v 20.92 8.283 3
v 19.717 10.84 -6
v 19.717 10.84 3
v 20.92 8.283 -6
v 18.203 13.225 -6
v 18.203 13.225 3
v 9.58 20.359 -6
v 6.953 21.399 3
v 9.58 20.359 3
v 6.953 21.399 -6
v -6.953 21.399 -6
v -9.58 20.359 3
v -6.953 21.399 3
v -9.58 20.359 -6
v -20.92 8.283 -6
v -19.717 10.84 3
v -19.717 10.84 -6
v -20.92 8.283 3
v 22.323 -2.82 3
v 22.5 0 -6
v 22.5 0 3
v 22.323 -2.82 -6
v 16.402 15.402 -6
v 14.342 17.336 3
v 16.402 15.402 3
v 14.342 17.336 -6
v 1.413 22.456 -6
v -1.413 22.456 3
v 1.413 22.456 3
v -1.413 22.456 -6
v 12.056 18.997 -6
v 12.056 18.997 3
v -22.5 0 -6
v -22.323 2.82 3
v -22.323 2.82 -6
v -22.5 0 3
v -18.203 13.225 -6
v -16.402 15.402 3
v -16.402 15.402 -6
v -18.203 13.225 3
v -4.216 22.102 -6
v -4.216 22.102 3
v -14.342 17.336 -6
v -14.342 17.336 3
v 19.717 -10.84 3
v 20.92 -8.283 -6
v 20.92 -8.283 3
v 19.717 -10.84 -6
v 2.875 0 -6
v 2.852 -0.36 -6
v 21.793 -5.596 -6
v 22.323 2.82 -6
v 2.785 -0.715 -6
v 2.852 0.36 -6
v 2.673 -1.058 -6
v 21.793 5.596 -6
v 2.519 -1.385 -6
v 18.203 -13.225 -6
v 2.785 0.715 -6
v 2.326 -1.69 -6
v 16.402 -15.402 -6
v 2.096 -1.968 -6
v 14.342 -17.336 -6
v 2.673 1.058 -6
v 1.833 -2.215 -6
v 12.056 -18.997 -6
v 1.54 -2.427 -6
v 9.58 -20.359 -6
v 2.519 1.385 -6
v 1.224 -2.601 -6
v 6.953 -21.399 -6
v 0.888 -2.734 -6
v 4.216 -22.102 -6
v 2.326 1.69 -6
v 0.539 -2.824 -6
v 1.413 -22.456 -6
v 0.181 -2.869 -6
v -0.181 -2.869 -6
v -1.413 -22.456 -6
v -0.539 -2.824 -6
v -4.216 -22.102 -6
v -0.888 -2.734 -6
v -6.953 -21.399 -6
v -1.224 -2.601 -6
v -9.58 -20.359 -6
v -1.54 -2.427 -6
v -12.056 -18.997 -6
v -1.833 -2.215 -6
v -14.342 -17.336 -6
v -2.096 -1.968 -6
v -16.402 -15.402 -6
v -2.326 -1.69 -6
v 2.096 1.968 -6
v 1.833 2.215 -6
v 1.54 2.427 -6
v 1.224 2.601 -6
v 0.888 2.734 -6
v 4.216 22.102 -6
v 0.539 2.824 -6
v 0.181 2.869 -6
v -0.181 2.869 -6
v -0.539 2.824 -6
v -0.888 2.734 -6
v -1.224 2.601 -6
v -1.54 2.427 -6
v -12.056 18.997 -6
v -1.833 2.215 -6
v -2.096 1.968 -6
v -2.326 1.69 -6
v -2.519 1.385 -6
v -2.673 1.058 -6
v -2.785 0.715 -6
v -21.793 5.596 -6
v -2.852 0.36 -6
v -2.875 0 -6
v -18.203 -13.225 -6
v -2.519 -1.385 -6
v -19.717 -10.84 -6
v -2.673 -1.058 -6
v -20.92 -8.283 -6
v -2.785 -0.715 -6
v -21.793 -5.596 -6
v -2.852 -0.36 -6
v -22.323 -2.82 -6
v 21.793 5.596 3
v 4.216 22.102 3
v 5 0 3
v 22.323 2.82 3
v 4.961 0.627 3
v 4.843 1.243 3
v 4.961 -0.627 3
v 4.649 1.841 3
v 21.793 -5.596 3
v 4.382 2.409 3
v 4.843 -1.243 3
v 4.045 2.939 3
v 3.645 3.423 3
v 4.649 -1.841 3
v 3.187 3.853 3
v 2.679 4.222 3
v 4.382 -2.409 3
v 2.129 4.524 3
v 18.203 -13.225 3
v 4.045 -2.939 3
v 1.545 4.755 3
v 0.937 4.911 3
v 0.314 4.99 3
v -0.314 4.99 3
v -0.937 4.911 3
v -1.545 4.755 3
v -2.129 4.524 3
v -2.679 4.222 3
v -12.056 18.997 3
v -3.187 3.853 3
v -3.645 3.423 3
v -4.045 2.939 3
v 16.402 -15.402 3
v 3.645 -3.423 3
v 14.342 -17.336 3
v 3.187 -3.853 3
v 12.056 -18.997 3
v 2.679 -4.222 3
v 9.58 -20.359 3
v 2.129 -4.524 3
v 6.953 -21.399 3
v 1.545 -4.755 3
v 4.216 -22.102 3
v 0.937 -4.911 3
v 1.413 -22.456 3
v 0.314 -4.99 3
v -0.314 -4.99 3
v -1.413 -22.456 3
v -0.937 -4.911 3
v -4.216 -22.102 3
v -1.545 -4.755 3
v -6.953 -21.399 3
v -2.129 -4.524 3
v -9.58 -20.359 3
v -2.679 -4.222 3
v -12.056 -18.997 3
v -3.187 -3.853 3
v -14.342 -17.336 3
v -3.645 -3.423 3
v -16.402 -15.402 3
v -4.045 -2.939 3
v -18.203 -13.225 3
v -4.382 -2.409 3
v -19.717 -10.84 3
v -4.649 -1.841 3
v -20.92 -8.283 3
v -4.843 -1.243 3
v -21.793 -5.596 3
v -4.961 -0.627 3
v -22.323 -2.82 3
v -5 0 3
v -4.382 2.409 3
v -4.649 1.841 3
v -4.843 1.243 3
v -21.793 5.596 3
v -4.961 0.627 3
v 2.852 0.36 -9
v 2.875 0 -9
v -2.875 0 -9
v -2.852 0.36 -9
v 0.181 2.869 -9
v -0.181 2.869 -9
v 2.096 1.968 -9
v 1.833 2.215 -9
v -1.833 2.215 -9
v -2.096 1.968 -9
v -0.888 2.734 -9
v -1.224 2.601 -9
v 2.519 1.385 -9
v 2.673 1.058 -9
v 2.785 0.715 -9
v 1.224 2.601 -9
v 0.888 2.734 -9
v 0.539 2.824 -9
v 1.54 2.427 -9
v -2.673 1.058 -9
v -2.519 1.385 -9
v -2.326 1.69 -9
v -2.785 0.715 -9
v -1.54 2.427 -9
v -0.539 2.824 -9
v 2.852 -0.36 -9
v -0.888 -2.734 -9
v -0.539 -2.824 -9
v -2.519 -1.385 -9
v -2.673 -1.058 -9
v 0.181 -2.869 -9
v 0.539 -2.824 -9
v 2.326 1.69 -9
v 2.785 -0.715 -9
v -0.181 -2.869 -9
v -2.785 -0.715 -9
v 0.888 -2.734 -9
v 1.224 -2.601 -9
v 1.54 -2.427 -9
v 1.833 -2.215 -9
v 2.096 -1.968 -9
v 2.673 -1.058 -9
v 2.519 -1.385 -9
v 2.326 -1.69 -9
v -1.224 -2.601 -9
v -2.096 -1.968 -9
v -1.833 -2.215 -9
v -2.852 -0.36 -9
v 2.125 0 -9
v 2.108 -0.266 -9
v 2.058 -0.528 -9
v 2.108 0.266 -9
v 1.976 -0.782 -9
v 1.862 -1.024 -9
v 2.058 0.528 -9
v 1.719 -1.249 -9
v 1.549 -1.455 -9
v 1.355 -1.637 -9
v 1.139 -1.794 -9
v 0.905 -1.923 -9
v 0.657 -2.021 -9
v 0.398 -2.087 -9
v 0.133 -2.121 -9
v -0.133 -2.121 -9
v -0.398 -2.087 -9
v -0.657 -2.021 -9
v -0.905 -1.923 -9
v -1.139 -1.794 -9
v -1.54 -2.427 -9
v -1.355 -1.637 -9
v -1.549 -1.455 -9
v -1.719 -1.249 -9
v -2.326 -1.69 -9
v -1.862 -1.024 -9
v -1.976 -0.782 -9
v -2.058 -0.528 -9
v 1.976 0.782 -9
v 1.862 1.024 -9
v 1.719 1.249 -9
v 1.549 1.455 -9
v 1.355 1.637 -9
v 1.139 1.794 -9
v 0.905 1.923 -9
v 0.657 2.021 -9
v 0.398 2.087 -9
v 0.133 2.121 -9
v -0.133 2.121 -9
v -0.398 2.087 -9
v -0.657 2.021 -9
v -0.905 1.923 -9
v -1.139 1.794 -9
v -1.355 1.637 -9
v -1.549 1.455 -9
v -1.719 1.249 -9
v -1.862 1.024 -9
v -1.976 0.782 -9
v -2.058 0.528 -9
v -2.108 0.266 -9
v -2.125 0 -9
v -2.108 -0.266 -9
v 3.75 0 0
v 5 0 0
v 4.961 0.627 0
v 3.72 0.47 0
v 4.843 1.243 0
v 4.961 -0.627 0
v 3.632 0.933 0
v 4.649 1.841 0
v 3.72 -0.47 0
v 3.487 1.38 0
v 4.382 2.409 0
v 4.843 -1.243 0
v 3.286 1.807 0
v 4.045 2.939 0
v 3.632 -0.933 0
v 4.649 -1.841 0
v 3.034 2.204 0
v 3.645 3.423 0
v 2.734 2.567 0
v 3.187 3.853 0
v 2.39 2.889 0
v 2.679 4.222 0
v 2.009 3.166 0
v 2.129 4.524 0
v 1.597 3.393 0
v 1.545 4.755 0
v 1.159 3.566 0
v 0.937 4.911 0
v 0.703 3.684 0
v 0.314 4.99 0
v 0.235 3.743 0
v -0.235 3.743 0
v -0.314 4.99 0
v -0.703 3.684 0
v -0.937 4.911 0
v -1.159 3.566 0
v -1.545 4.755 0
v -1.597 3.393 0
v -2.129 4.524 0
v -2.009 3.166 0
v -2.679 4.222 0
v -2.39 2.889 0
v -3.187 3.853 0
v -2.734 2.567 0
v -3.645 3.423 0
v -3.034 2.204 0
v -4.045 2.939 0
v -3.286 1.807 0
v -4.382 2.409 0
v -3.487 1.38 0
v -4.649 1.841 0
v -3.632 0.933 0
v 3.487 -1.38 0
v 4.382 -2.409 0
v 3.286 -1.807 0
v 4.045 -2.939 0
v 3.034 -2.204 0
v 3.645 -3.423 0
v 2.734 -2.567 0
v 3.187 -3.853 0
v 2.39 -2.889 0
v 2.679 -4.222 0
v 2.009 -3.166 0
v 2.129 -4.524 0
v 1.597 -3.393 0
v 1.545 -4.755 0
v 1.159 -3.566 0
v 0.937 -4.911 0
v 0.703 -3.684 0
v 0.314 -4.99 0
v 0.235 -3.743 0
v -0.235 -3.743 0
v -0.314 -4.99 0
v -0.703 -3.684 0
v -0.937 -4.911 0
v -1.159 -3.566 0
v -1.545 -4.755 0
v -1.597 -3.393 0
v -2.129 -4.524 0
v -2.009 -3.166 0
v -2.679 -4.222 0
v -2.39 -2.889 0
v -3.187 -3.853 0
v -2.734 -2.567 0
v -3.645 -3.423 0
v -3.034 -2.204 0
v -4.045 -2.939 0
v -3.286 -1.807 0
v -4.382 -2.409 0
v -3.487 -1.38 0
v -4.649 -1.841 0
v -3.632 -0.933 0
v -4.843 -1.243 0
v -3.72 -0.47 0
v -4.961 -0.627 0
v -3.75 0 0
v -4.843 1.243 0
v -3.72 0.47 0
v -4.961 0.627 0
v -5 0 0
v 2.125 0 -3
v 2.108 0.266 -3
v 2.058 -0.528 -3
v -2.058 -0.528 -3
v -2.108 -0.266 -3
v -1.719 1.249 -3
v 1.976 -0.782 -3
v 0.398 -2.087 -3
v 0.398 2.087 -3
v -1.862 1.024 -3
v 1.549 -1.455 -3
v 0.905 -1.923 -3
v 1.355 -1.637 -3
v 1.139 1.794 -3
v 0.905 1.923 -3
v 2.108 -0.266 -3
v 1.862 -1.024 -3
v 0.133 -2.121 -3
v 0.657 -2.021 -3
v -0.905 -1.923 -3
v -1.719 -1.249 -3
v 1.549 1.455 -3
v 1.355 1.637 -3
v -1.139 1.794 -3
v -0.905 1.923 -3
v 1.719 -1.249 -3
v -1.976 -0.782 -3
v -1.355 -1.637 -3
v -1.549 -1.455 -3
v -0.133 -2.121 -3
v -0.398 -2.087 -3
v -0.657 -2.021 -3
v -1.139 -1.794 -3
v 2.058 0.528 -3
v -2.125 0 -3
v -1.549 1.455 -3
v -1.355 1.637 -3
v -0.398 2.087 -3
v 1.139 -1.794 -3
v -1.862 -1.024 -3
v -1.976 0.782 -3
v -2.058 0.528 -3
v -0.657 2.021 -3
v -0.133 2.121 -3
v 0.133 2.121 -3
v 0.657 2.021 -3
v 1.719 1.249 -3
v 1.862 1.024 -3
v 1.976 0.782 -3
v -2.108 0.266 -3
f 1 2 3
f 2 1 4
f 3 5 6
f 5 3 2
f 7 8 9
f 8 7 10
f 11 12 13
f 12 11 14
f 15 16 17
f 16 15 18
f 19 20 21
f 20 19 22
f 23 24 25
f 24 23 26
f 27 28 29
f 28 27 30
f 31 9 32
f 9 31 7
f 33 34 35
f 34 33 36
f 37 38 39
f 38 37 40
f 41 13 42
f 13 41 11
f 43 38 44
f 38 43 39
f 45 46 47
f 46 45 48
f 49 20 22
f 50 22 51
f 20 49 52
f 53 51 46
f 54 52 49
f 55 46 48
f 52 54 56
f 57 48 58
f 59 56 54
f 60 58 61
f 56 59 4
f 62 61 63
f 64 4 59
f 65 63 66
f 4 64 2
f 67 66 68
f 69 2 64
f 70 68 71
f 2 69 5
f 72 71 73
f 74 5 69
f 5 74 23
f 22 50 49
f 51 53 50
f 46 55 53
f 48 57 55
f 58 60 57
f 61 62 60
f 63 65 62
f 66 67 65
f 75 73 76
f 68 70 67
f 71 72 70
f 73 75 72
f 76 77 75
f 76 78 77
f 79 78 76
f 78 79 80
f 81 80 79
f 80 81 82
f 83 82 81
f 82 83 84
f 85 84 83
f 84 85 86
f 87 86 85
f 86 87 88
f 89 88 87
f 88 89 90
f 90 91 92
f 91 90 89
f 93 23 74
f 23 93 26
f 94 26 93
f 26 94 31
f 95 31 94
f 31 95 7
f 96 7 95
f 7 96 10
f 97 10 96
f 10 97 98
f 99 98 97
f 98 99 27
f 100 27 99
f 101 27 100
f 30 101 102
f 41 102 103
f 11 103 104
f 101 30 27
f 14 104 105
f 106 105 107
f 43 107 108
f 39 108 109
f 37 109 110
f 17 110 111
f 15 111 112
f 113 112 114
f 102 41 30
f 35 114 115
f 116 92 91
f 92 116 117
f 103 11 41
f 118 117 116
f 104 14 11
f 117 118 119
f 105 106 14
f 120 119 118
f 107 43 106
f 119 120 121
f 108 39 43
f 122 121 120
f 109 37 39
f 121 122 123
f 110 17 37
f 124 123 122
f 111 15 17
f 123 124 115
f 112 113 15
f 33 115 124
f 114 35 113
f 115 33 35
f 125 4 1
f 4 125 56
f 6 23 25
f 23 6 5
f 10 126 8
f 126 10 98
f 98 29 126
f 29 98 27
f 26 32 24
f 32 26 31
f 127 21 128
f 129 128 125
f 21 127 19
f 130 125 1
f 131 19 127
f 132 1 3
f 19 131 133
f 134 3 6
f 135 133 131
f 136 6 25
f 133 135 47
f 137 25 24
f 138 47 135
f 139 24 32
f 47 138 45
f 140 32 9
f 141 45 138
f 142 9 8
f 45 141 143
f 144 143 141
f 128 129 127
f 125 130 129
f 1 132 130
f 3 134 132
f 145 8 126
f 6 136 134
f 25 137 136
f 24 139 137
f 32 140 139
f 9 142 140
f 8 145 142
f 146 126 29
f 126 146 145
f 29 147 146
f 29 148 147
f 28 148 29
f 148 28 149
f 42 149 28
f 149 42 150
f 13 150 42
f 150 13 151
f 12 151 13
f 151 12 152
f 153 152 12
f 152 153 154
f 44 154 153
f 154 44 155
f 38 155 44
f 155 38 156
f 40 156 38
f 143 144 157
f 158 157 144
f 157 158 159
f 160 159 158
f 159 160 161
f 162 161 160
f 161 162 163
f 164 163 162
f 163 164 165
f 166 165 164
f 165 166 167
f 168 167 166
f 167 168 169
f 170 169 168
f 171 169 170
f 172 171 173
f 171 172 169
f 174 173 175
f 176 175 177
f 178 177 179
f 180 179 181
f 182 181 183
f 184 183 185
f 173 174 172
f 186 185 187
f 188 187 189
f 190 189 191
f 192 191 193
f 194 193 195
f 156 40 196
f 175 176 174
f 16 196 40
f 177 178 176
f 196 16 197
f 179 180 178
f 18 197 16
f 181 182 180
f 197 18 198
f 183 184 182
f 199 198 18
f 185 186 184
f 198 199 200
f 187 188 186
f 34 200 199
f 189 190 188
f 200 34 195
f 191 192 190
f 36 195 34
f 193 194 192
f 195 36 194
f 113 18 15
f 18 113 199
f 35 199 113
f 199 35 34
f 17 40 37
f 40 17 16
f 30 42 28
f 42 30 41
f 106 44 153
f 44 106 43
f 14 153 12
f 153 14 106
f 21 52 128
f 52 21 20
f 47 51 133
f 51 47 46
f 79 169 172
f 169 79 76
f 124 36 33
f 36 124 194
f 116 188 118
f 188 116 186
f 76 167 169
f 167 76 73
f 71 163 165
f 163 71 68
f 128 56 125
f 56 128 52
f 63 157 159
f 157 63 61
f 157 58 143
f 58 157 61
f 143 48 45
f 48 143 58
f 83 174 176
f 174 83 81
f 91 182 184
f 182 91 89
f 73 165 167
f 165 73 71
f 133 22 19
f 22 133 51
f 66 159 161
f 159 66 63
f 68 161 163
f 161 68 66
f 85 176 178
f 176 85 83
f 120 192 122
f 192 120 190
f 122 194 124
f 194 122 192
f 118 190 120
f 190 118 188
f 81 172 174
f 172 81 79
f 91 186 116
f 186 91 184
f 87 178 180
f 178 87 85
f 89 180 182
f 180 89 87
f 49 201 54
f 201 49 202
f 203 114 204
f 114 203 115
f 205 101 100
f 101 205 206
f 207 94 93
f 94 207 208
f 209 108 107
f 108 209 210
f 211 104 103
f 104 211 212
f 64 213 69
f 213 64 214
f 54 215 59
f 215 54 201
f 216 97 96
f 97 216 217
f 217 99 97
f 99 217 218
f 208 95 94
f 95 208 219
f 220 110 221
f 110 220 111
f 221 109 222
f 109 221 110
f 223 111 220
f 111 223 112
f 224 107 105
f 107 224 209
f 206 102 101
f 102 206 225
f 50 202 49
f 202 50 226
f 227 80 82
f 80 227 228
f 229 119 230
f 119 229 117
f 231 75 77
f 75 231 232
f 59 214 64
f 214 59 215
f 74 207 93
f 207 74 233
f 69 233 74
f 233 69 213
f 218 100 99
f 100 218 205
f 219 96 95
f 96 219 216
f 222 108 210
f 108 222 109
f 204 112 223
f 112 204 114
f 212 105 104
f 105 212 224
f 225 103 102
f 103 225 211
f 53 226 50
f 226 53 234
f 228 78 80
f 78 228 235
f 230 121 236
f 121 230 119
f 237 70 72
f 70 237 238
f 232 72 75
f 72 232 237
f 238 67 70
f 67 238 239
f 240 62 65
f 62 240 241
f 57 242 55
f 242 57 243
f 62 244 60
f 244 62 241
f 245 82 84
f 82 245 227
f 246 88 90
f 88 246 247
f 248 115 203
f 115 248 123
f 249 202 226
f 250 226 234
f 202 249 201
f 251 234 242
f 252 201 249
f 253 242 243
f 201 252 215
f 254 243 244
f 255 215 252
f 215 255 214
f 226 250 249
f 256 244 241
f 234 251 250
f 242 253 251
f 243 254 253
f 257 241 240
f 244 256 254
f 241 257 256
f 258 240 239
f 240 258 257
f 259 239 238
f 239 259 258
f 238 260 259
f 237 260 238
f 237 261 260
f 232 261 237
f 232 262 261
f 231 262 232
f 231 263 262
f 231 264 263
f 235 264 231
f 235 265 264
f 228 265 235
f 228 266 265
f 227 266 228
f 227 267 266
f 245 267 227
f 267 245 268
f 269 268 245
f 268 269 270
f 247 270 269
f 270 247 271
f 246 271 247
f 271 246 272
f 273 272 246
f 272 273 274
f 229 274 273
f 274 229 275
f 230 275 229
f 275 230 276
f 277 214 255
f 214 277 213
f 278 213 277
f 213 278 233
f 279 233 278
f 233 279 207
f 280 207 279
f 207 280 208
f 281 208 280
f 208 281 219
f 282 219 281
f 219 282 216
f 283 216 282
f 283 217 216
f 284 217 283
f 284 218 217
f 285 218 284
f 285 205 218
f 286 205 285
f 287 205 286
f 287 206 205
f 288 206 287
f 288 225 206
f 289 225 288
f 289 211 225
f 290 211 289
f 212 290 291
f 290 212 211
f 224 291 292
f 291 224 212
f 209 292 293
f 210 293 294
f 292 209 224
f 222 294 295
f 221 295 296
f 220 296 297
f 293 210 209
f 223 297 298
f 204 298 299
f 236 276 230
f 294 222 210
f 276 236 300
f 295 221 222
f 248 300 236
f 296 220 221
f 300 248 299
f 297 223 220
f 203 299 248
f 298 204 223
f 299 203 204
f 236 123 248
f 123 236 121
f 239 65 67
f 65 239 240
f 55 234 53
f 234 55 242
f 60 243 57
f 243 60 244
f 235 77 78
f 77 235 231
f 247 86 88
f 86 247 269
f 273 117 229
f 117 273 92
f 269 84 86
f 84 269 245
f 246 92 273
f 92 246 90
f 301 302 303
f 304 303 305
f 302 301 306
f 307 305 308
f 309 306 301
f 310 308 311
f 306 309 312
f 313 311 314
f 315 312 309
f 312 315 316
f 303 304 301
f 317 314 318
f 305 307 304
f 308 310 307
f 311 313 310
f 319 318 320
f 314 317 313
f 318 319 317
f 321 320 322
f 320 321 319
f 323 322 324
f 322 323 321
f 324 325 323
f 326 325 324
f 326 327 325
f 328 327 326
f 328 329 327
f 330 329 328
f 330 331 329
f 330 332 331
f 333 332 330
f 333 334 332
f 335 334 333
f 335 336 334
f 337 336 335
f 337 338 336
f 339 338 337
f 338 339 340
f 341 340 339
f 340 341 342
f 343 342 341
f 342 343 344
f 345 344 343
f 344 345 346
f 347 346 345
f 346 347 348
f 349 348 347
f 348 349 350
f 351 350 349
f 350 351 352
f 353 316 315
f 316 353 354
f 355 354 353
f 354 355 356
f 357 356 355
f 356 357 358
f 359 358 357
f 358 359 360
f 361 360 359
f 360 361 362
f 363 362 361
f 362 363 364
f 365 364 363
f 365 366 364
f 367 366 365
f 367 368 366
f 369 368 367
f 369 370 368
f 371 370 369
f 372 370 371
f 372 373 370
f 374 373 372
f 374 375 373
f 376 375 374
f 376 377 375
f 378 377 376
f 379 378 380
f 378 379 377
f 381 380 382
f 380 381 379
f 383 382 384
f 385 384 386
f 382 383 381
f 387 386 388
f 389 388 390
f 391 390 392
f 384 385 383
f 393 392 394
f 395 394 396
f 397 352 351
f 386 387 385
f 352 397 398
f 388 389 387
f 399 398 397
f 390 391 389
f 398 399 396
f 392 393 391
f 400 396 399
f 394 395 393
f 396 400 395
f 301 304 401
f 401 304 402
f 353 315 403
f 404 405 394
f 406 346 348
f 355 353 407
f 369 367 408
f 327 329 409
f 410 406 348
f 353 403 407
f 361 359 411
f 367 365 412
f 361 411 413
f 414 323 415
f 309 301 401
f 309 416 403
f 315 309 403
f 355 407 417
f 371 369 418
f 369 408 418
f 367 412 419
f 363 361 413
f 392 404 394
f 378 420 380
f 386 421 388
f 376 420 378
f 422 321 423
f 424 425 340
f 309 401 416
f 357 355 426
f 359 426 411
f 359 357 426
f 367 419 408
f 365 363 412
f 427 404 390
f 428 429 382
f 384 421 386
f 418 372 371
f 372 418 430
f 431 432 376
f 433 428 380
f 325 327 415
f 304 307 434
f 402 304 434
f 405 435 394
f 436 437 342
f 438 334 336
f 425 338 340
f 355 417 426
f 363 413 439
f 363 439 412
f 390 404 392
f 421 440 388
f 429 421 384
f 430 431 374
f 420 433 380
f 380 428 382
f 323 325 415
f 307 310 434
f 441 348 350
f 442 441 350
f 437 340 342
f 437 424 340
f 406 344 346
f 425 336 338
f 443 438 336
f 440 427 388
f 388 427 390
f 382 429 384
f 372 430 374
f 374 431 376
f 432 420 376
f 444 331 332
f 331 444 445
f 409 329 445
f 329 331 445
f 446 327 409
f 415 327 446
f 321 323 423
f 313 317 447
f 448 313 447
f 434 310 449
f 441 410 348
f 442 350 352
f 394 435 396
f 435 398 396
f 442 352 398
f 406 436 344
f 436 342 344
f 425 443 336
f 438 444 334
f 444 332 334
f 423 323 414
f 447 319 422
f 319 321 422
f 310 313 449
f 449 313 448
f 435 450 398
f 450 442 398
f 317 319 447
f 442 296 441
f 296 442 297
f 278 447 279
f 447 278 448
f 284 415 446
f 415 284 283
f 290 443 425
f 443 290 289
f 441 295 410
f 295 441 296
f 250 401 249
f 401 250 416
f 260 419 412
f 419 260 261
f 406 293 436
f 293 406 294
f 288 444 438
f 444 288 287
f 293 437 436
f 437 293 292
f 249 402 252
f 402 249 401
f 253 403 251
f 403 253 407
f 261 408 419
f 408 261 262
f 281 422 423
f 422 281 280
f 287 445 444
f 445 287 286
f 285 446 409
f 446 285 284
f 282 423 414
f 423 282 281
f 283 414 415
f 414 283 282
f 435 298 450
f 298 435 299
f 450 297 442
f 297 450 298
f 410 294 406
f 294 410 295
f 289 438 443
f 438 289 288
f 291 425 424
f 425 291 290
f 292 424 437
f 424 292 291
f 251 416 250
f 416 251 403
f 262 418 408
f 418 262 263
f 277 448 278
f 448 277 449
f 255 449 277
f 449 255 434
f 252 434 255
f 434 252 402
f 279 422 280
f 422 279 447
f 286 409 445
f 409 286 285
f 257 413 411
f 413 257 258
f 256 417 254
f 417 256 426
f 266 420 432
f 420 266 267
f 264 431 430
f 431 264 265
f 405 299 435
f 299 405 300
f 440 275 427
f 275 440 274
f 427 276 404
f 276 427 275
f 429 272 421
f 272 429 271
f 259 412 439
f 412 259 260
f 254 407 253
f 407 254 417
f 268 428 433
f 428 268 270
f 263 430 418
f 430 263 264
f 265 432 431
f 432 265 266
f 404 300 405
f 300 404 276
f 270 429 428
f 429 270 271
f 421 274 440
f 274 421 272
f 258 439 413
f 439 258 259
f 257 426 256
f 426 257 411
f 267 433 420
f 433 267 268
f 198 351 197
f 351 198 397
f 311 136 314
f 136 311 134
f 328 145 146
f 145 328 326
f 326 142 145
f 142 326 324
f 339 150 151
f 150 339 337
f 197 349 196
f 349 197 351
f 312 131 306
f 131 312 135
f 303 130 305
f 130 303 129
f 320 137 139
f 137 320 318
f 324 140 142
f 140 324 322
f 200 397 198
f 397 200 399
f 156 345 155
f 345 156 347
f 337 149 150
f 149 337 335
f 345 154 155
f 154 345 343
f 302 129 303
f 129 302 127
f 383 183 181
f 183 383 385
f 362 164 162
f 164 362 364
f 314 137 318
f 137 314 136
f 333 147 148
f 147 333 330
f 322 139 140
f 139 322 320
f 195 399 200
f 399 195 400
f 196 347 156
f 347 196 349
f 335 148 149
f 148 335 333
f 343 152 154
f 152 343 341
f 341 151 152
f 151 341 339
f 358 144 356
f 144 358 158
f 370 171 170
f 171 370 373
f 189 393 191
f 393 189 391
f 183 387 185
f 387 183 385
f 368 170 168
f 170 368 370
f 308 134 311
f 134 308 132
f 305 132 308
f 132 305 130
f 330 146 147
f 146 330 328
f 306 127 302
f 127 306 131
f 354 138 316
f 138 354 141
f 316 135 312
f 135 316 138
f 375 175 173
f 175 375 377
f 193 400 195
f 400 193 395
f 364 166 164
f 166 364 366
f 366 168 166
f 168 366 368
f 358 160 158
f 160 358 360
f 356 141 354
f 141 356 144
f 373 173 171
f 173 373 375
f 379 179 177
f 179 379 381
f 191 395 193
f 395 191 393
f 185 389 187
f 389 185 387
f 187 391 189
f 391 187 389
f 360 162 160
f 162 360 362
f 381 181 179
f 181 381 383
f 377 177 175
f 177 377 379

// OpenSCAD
$fn = 50;


difference() {
	union() {
		translate(v = [0, 0, -6.0000000000]) {
			cylinder(h = 9, r = 22.5000000000);
		}
		#translate(v = [0, 0, -9.0000000000]) {
			cylinder(h = 9, r = 2.8750000000);
		}
	}
	union() {
		translate(v = [0, 0, 0]) {
			rotate(a = [0, 0, 0]) {
				difference() {
					union() {
						translate(v = [0, 0, -9.0000000000]) {
							cylinder(h = 9, r = 2.0000000000);
						}
						translate(v = [0, 0, -3]) {
							cylinder(h = 3, r1 = 2.1250000000, r2 = 3.7500000000);
						}
						translate(v = [0, 0, -9.0000000000]) {
							cylinder(h = 9, r = 2.1250000000);
						}
						translate(v = [0, 0, -9.0000000000]) {
							cylinder(h = 9, r = 2.0000000000);
						}
					}
					union();
				}
			}
		}
		#cylinder(h = 3, r = 5.0000000000);
	}
}
